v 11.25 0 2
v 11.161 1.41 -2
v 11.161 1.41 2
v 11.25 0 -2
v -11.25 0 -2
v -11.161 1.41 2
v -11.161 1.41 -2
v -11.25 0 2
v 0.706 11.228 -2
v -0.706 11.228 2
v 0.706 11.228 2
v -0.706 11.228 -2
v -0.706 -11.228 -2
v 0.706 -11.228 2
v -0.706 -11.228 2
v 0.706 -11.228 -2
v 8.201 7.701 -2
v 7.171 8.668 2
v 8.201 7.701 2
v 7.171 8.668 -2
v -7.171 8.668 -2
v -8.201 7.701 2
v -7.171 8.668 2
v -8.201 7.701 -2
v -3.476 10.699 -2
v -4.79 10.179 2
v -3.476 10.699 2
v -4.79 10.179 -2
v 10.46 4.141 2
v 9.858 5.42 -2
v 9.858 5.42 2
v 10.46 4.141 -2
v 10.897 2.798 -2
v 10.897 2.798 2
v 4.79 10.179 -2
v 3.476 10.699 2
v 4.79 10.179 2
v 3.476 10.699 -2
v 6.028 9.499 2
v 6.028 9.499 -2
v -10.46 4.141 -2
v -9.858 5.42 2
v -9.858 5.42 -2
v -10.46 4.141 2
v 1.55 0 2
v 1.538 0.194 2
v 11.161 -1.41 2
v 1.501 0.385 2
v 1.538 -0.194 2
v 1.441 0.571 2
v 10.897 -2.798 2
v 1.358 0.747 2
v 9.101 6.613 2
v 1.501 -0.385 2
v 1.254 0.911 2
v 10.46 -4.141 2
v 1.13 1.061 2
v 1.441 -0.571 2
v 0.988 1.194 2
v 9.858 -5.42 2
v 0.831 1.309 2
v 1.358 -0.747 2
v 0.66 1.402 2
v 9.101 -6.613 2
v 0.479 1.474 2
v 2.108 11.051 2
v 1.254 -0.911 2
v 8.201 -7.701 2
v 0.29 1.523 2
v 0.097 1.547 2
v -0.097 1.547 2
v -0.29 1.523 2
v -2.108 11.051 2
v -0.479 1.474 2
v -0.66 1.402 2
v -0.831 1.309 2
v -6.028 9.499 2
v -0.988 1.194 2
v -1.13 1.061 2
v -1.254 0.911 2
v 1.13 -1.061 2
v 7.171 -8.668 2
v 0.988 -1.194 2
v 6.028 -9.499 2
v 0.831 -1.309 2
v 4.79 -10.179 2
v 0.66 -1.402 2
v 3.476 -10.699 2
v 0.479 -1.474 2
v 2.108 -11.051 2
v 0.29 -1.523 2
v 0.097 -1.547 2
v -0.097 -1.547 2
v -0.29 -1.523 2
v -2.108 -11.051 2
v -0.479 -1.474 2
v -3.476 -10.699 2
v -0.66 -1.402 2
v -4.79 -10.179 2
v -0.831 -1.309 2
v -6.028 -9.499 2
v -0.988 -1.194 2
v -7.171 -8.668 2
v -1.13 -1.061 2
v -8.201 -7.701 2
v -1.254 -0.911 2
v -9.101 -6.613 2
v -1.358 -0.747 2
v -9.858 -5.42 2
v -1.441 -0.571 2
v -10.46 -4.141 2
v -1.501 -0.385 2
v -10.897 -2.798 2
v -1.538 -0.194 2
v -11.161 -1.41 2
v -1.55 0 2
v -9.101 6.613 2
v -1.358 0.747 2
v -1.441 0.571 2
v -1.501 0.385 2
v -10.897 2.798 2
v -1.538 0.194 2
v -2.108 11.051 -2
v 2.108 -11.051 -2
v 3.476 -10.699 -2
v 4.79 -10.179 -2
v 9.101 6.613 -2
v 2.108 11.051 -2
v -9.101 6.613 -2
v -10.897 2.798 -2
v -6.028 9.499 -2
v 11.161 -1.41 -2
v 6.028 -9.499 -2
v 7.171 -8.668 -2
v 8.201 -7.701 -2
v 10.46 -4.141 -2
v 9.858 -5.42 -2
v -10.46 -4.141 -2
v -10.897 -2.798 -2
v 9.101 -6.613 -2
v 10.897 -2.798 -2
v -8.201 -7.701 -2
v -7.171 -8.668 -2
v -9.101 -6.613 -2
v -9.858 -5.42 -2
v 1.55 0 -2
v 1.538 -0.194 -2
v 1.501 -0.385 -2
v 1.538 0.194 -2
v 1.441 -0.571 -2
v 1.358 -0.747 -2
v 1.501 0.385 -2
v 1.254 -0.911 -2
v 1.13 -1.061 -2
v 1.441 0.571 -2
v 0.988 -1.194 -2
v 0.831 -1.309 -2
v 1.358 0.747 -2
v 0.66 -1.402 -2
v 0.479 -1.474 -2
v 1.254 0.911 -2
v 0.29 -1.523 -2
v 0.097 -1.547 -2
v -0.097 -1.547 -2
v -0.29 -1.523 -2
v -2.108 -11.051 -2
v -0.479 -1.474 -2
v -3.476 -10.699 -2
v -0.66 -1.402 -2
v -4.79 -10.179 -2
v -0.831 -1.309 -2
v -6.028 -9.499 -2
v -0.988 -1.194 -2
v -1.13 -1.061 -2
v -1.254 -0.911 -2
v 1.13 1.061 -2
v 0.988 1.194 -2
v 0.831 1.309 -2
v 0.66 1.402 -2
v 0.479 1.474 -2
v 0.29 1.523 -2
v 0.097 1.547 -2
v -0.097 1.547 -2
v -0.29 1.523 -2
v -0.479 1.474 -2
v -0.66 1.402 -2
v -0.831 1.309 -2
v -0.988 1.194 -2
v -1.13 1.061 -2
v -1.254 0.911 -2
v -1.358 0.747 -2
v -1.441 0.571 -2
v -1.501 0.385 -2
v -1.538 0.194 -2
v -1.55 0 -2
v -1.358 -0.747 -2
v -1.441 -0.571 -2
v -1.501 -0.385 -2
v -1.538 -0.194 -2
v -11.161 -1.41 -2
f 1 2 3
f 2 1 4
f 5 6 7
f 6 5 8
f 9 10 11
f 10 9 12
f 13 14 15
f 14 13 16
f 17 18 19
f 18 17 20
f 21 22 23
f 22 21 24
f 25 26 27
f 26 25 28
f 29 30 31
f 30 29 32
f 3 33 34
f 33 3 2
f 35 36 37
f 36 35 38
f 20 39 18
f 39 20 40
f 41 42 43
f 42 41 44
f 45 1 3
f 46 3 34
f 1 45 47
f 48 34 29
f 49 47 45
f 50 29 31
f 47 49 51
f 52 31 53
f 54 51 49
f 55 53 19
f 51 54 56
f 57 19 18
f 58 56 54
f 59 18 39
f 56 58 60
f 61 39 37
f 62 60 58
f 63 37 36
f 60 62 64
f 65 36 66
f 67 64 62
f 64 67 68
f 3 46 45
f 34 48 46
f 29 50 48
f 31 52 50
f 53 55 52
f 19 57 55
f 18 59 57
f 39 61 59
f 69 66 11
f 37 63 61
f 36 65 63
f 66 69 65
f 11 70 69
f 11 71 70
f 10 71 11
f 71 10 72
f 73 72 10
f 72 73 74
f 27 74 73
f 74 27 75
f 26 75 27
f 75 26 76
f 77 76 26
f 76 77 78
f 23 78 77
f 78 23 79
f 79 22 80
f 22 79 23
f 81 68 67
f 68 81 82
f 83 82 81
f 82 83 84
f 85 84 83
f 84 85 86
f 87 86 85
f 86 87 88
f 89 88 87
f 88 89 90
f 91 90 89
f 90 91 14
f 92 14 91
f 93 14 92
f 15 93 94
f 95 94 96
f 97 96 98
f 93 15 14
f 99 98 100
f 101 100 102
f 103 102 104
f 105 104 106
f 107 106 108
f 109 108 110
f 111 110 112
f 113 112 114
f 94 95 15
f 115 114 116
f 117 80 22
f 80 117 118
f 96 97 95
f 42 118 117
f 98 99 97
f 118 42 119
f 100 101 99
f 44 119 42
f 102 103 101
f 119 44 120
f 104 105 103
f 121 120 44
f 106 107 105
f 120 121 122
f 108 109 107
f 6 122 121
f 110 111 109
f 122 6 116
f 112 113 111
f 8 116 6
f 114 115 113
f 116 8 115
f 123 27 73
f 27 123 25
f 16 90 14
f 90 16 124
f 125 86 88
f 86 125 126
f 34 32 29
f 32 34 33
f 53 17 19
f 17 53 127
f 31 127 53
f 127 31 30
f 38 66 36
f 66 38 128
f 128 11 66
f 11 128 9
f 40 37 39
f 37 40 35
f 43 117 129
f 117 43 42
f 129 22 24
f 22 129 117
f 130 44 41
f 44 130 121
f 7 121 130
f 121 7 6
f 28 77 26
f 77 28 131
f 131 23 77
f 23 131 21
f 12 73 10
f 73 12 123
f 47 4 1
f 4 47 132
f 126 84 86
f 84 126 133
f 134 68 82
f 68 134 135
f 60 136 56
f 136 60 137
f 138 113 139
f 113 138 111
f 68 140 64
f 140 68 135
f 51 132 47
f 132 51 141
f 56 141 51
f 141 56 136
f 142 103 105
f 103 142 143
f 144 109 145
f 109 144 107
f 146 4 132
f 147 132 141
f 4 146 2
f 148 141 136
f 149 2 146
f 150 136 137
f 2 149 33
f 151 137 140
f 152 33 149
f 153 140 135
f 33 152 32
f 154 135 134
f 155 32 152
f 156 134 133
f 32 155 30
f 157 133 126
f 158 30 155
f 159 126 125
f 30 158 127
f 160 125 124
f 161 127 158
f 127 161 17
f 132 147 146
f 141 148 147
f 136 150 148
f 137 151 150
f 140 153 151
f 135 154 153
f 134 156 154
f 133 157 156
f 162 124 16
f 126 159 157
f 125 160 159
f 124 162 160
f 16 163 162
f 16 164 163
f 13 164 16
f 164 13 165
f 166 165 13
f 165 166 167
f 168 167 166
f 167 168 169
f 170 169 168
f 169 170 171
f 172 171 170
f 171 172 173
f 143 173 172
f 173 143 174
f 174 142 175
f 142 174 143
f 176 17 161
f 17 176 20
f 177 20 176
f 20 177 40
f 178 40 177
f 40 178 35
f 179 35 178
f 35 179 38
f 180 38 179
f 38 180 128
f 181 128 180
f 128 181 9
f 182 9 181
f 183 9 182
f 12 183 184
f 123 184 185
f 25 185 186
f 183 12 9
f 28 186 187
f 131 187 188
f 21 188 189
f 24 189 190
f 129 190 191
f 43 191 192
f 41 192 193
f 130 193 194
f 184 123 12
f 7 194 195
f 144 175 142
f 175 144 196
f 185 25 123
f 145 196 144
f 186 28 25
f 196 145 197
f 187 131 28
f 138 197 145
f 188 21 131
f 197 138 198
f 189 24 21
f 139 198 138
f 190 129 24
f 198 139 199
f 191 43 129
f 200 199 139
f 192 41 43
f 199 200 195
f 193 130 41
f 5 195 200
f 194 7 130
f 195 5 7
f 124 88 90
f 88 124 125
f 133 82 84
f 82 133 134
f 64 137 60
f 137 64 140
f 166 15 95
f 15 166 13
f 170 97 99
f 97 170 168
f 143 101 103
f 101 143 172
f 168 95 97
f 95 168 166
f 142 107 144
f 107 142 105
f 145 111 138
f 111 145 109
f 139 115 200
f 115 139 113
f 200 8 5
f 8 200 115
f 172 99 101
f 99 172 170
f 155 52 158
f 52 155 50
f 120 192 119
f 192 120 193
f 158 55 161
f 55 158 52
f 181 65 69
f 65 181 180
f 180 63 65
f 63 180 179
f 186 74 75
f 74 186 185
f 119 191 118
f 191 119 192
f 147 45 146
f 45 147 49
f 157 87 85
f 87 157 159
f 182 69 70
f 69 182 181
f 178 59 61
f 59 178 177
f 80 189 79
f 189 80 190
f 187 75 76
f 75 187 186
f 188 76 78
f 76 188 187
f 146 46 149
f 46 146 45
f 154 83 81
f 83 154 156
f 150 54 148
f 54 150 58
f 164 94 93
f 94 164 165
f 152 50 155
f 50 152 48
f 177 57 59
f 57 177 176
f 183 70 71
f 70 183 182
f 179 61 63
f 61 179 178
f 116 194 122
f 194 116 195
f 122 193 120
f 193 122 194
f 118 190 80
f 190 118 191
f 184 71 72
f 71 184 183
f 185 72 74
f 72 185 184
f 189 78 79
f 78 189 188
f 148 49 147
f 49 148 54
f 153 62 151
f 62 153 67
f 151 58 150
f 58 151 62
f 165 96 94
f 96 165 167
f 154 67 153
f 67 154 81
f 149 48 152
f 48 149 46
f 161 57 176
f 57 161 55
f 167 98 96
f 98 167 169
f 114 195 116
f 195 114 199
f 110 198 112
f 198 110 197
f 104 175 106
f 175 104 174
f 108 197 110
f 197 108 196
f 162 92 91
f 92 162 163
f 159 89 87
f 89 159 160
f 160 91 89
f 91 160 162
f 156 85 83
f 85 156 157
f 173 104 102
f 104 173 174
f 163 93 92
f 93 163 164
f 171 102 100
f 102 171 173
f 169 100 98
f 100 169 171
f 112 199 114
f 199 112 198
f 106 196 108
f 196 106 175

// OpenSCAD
$fn = 50;


difference() {
	union() {
		translate(v = [0, 0, -2.0000000000]) {
			cylinder(h = 4, r = 11.2500000000);
		}
	}
	union() {
		translate(v = [0, 0, -100.0000000000]) {
			cylinder(h = 200, r = 1.5500000000);
		}
	}
}
